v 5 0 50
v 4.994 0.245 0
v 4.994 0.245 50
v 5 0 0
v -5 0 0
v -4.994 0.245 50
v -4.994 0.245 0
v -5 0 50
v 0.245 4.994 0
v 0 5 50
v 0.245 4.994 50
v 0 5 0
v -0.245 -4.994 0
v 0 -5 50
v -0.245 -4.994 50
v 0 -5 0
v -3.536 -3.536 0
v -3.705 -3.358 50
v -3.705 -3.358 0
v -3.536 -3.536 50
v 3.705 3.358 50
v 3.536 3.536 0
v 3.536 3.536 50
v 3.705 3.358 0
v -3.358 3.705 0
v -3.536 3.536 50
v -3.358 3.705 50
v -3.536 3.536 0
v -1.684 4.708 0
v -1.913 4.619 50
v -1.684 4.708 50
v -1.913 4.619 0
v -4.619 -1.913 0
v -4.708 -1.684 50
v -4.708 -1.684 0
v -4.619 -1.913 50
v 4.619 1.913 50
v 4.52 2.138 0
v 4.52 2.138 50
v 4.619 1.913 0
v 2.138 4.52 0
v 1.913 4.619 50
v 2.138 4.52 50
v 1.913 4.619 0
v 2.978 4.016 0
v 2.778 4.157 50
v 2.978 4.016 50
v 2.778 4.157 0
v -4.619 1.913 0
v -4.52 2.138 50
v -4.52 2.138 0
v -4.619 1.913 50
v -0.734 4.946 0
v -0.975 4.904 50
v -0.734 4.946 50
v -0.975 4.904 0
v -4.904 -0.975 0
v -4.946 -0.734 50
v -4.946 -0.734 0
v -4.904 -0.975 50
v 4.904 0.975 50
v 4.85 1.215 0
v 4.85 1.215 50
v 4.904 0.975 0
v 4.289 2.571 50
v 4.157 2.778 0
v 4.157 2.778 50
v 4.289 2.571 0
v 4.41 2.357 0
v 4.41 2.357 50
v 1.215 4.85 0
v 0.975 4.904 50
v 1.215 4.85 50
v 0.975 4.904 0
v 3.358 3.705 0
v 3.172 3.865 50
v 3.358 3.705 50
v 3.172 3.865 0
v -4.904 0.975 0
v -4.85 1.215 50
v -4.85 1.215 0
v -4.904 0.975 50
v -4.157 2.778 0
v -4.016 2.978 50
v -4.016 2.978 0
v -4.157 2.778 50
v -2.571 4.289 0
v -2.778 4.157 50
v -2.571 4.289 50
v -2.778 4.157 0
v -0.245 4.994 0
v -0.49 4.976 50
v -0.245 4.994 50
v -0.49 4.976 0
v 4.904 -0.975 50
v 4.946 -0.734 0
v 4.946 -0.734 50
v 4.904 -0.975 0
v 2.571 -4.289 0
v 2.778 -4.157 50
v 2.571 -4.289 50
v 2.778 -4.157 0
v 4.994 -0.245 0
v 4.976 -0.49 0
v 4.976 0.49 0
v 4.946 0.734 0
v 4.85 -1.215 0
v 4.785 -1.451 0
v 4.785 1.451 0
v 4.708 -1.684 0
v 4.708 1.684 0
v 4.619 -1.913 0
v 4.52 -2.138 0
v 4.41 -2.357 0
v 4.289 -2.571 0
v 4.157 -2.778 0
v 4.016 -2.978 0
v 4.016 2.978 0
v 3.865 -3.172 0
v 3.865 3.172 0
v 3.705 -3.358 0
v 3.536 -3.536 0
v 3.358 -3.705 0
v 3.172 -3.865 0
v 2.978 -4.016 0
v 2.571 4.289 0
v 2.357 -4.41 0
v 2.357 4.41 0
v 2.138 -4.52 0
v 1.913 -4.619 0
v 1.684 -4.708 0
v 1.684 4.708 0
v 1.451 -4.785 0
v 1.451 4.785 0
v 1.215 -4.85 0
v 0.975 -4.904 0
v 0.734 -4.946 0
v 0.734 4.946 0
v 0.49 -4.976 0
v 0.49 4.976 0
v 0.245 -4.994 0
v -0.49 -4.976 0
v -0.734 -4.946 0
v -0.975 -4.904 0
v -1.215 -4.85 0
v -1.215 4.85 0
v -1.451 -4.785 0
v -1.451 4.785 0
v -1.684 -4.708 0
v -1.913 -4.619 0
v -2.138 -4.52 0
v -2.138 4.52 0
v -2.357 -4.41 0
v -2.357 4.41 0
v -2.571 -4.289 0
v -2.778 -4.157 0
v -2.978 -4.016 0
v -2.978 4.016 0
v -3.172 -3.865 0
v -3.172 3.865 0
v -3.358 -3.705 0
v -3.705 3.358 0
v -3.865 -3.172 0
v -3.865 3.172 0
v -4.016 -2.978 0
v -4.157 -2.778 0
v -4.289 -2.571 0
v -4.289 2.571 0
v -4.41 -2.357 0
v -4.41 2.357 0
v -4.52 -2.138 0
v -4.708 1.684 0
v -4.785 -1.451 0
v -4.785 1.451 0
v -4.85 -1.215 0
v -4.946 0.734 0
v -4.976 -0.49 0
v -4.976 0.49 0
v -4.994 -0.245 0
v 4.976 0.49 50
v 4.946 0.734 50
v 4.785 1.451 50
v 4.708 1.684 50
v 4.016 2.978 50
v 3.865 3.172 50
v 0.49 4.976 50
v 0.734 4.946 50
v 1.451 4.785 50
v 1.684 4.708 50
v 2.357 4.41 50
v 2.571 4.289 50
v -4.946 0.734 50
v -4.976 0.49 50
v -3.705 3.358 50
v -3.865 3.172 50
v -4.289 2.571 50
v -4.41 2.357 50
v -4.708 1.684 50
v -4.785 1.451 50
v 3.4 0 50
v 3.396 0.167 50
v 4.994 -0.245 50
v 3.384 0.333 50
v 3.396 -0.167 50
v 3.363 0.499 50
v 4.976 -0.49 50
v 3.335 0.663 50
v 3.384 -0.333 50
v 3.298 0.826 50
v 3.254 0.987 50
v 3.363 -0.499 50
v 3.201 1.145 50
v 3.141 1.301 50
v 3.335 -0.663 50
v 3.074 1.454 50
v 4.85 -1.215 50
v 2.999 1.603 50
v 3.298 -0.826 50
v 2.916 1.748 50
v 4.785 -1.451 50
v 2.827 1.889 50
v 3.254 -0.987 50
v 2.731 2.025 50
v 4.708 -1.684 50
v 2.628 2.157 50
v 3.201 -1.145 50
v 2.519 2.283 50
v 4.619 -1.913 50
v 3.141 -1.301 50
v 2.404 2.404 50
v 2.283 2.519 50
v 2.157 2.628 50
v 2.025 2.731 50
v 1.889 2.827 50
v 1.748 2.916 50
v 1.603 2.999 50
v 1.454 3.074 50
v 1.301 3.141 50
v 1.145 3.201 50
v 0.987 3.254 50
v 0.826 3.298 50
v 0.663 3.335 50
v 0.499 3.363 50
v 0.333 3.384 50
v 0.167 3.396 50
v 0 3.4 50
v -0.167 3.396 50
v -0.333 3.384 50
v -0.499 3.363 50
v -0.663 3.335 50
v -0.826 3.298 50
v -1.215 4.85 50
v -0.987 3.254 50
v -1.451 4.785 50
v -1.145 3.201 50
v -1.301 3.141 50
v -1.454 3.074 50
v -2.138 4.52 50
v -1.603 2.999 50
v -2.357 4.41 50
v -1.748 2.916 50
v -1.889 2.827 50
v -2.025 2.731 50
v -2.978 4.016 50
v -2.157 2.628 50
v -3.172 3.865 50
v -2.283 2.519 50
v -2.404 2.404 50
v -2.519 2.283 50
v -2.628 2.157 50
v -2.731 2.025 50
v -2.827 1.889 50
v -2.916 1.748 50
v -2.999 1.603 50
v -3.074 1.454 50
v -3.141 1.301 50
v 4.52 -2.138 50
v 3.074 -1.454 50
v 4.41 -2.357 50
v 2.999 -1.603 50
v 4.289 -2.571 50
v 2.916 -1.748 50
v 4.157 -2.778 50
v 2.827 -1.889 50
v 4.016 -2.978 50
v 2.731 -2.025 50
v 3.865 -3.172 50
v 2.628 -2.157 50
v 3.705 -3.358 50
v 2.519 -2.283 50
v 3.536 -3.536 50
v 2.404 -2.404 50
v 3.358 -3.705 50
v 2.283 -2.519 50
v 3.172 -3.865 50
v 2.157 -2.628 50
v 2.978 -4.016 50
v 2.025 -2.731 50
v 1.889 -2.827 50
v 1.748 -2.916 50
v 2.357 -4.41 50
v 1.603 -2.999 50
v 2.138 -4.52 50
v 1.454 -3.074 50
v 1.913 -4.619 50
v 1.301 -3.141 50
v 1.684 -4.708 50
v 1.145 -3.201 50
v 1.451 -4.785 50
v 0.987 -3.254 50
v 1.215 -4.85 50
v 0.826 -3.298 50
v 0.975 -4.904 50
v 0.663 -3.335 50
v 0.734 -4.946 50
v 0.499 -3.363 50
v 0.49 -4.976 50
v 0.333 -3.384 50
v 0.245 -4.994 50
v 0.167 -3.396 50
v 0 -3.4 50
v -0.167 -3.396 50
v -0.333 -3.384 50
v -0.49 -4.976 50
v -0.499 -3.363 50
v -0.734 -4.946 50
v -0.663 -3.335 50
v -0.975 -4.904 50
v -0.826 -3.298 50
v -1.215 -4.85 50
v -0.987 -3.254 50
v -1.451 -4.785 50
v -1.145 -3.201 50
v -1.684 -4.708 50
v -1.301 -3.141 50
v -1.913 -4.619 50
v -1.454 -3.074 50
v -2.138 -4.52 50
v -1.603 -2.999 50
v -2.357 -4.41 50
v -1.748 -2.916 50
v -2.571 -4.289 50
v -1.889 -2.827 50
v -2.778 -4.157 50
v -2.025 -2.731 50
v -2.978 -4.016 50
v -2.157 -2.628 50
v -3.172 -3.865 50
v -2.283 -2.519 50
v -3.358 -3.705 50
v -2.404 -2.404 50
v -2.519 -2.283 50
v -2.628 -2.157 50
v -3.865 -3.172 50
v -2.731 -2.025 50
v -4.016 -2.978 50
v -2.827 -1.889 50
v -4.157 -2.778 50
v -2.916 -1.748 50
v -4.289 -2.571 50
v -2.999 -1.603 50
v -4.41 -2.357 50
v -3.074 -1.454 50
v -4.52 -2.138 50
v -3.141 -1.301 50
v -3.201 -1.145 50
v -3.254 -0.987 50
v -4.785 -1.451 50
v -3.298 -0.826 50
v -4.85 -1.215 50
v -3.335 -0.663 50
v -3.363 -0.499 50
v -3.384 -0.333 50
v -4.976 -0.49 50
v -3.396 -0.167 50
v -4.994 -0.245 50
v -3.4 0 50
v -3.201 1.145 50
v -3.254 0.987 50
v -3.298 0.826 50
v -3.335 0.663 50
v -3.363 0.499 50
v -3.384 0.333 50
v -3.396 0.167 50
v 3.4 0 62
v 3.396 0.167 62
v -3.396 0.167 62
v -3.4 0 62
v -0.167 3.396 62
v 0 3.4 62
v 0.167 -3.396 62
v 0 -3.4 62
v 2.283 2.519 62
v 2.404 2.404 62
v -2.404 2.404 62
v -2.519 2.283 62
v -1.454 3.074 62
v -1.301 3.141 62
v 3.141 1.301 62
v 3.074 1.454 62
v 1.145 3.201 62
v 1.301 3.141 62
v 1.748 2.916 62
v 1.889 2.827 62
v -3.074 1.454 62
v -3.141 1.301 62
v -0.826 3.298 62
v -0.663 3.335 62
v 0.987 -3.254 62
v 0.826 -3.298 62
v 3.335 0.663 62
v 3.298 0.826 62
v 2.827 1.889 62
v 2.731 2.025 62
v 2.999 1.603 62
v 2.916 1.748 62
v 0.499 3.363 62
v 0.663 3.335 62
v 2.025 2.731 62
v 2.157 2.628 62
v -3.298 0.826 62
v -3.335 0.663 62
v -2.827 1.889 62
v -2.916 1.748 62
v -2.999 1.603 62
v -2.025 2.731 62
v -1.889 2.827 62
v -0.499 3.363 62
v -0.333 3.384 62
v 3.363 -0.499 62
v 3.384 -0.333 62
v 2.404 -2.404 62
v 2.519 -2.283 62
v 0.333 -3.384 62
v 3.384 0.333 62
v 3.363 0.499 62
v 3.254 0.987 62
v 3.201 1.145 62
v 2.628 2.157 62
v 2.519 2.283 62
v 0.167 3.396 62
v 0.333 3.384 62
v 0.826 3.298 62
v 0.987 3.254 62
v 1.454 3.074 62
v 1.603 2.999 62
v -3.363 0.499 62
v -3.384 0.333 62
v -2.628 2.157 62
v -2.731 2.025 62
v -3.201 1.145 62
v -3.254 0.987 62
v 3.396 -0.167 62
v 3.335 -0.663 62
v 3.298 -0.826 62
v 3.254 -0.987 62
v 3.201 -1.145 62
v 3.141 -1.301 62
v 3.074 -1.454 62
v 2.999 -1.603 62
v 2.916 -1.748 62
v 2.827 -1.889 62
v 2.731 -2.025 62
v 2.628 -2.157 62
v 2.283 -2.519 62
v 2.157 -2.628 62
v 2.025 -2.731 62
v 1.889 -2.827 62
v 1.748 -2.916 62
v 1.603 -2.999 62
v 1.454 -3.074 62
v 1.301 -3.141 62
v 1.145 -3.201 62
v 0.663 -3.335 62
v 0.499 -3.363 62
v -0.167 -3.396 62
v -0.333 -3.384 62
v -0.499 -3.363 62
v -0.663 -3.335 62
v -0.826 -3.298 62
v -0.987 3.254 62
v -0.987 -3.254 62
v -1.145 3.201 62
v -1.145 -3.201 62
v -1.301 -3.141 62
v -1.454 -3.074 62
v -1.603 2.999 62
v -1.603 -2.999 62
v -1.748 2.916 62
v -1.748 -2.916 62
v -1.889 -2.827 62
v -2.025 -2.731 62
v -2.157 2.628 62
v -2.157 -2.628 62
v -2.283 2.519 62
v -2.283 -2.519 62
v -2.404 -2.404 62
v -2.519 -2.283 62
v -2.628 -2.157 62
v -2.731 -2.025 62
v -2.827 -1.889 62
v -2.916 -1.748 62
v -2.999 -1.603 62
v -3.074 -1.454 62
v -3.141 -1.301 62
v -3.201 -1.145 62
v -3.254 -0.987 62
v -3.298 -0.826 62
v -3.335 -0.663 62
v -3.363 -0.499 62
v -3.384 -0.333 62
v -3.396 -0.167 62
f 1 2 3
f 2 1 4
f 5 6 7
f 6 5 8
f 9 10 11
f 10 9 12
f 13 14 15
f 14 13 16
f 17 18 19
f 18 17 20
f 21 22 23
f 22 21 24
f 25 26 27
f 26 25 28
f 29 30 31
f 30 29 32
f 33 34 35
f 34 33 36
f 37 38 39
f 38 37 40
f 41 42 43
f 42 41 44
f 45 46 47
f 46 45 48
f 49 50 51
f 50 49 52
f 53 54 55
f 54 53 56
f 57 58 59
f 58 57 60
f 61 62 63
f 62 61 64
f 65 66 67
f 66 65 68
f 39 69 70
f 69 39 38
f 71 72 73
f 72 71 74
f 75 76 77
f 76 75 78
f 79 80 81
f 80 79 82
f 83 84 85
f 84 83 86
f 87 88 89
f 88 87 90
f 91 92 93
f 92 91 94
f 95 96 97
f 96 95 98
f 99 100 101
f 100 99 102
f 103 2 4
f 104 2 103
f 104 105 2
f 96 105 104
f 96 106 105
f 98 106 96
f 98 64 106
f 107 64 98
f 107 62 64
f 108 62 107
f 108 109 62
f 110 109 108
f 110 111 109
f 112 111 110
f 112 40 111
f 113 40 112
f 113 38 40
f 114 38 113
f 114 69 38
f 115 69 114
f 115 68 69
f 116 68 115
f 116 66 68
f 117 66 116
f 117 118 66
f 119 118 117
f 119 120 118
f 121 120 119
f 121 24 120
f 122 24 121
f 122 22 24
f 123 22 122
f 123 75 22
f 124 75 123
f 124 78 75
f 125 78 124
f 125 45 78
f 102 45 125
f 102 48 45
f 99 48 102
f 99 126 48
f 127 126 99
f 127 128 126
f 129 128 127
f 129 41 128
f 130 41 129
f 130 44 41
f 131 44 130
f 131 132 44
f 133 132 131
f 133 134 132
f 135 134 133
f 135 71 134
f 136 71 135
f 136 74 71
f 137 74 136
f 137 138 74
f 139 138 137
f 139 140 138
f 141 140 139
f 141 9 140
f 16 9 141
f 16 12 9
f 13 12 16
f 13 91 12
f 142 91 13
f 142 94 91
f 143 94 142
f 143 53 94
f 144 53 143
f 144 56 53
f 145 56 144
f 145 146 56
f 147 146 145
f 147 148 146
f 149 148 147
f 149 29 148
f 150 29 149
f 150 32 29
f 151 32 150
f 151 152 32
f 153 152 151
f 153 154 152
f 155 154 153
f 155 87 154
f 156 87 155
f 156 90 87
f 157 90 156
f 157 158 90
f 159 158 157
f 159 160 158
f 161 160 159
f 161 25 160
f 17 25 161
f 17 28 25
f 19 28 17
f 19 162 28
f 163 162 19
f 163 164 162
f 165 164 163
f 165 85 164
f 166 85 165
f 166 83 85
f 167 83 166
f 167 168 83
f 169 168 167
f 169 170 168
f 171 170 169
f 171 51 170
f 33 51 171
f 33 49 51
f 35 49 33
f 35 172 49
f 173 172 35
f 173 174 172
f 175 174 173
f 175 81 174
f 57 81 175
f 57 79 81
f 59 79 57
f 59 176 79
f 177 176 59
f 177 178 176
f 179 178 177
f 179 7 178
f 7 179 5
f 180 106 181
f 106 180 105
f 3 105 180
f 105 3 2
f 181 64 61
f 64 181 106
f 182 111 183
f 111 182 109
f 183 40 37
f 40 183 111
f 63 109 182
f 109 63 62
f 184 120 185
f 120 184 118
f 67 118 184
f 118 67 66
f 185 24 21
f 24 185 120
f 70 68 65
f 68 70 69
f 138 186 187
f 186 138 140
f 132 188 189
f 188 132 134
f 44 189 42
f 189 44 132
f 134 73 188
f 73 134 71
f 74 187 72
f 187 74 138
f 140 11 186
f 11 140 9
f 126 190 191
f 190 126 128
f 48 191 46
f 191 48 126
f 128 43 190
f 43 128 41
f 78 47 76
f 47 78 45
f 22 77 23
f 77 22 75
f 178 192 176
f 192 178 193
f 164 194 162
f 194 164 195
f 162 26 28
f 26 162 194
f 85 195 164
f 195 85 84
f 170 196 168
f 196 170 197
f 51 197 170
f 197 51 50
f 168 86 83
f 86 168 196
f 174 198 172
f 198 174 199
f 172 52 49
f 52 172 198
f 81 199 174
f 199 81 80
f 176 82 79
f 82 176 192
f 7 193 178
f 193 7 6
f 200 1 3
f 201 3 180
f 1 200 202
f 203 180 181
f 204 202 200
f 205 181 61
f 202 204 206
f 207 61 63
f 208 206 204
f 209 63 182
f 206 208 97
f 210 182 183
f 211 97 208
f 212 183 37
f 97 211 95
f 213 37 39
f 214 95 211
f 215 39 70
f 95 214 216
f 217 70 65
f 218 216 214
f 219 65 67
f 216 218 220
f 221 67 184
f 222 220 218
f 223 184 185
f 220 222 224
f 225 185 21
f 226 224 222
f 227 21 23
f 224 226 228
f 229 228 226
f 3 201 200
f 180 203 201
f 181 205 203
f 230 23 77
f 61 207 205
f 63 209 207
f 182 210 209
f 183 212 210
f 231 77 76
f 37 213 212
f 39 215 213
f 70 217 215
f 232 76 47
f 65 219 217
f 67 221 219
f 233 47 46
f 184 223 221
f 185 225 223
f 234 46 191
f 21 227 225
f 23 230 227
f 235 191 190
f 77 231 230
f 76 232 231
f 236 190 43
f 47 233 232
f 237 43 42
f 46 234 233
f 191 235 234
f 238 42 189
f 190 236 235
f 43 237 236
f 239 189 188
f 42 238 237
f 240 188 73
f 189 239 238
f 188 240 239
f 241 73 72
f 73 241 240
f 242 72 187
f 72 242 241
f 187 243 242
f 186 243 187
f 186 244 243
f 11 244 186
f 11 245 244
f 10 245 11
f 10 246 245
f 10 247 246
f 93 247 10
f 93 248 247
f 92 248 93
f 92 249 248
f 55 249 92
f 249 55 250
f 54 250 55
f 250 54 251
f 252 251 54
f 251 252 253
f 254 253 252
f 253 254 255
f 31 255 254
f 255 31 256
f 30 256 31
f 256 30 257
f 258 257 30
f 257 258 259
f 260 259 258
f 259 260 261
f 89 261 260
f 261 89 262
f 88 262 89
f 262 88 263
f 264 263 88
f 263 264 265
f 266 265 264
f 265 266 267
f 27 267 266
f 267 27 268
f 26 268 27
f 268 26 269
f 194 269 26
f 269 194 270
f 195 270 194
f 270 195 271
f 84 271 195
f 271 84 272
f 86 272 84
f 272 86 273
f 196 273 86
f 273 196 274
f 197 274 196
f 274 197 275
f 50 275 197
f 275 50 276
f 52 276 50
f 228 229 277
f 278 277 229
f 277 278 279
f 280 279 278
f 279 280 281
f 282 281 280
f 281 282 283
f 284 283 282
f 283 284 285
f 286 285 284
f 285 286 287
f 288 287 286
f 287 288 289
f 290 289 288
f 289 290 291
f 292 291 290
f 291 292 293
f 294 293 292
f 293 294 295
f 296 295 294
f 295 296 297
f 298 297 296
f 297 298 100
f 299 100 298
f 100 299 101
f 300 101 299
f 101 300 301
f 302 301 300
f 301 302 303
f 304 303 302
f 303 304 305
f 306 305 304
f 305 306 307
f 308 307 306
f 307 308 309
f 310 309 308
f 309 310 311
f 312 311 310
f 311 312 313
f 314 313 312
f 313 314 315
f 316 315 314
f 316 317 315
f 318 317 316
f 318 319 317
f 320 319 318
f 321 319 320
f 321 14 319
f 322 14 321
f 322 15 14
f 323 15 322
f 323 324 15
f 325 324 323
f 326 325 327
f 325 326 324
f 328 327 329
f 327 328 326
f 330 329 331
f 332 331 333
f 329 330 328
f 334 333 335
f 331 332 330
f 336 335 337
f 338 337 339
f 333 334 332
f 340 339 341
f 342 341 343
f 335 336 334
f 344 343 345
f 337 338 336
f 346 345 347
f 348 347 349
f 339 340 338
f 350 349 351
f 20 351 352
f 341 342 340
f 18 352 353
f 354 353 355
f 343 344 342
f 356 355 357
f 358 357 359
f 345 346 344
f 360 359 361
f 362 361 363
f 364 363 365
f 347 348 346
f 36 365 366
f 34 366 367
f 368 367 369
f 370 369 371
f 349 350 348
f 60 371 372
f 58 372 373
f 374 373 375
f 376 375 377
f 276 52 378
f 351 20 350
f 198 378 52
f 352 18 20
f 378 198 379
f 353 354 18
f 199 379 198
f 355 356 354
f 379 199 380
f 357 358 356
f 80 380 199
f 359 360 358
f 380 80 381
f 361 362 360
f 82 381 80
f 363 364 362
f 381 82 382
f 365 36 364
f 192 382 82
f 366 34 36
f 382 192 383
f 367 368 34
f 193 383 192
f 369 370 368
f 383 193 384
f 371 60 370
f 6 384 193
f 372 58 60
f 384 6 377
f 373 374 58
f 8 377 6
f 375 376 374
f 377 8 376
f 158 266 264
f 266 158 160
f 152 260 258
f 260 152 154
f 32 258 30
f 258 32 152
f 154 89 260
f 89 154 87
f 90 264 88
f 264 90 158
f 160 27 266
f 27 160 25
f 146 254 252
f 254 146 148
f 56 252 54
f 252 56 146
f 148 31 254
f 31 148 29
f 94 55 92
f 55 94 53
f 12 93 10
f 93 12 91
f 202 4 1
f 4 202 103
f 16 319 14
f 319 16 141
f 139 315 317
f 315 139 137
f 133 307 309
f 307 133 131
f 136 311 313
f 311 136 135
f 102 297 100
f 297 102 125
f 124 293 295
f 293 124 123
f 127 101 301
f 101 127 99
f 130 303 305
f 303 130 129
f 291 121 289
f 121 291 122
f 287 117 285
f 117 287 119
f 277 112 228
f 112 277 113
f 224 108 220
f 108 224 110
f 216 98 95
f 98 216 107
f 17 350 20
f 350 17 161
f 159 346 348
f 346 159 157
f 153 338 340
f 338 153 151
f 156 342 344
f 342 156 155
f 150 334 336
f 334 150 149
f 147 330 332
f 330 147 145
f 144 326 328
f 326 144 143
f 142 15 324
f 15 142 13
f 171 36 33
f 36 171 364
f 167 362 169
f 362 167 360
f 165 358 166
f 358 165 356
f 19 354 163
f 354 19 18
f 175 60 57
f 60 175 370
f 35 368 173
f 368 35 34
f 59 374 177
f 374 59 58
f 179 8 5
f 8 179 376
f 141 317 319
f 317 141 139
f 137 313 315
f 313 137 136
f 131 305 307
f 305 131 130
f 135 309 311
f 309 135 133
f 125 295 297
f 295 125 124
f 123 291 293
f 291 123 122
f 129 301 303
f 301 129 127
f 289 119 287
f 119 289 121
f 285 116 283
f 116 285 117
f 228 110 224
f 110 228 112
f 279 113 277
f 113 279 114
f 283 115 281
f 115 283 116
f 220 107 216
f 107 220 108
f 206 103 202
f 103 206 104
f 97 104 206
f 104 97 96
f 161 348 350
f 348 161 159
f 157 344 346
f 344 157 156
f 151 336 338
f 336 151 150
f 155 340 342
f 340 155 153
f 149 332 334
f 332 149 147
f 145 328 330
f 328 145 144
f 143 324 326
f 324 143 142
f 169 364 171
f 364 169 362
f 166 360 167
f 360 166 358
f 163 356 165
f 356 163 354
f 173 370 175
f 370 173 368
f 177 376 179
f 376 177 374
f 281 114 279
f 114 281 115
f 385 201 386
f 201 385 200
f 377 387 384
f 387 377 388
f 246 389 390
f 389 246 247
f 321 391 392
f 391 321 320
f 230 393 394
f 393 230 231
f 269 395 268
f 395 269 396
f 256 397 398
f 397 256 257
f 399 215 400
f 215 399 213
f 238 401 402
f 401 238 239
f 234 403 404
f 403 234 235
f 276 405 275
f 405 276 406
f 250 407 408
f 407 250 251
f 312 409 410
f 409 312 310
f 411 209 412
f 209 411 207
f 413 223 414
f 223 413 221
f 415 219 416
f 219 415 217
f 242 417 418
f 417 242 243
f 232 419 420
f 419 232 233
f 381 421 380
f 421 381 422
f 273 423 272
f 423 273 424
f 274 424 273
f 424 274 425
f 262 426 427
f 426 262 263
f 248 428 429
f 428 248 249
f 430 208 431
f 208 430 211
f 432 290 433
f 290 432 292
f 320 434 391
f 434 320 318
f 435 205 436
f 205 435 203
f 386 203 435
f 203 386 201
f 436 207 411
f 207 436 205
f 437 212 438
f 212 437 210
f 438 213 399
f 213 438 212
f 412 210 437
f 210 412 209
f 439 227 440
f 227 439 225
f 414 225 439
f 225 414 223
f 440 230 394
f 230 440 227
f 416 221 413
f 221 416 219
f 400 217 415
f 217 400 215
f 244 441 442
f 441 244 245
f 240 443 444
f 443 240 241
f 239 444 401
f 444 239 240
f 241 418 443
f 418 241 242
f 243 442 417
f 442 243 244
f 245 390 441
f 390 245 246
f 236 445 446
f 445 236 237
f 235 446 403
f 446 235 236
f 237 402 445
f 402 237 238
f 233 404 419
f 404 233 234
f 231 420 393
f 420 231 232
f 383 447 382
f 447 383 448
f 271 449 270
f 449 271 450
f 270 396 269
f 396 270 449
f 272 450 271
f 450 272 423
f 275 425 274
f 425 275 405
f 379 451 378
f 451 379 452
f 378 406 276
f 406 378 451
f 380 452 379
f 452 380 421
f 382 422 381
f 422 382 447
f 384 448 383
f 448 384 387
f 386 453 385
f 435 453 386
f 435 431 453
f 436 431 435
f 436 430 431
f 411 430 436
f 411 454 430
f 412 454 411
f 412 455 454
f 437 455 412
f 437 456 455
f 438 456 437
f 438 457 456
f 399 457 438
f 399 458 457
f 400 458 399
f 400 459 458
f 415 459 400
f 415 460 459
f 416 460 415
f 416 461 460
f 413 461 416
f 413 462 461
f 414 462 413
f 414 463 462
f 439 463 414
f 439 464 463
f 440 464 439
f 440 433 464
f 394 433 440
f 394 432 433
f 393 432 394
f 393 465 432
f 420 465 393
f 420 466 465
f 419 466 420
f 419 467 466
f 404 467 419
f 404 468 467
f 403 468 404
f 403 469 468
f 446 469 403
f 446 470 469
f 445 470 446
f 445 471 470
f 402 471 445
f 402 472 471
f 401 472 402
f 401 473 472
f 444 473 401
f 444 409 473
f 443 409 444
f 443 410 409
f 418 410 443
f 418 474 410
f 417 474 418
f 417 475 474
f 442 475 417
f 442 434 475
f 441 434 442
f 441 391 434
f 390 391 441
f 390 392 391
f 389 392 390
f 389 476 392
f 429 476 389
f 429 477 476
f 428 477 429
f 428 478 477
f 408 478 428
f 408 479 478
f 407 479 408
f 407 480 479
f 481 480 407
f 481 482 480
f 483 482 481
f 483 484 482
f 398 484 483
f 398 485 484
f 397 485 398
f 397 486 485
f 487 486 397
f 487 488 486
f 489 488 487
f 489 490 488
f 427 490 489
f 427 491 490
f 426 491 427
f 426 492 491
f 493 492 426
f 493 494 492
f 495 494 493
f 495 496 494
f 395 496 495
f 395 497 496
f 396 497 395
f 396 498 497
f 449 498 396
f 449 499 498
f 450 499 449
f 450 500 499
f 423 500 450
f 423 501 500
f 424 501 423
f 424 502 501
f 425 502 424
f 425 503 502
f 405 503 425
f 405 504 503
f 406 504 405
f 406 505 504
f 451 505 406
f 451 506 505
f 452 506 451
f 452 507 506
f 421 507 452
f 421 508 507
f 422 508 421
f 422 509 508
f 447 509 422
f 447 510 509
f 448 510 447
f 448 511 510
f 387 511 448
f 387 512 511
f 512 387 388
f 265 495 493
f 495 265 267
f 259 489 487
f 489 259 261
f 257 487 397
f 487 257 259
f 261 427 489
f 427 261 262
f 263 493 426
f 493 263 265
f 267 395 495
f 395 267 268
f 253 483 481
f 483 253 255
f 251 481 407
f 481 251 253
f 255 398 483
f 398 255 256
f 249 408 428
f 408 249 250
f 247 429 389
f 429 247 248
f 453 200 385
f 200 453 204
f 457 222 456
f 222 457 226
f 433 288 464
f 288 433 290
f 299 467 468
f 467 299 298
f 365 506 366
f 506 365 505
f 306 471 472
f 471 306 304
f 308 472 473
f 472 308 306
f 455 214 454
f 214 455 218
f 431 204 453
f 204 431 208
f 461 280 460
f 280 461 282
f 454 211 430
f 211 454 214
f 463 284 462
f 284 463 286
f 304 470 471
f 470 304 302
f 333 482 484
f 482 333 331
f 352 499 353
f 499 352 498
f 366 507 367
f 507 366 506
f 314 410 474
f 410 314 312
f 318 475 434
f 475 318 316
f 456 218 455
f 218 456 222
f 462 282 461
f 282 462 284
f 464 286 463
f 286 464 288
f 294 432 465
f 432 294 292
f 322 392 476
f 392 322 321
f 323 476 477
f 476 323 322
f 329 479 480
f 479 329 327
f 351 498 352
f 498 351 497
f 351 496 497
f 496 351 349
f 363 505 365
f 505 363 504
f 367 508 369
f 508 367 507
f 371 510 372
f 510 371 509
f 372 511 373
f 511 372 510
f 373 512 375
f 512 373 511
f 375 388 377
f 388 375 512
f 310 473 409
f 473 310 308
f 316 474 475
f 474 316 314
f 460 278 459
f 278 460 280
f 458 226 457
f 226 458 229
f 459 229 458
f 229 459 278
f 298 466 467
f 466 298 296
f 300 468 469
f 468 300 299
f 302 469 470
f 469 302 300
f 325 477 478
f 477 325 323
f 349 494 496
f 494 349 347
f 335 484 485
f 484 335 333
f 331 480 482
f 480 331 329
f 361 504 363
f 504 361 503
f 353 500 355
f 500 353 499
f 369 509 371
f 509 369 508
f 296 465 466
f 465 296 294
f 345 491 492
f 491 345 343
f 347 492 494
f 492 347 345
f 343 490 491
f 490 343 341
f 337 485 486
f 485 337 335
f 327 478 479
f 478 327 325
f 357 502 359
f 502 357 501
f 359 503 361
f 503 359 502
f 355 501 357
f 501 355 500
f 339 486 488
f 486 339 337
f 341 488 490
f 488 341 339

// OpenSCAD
$fn=128;



d1=10;
h1=50; //  40  50  60 original 67  

d2=6.8;
h2=12;

eps=0.01;


cylinder(d=d1, h=h1);

translate([0, 0, h1-eps]) cylinder(d=d2, h=h2+eps);
